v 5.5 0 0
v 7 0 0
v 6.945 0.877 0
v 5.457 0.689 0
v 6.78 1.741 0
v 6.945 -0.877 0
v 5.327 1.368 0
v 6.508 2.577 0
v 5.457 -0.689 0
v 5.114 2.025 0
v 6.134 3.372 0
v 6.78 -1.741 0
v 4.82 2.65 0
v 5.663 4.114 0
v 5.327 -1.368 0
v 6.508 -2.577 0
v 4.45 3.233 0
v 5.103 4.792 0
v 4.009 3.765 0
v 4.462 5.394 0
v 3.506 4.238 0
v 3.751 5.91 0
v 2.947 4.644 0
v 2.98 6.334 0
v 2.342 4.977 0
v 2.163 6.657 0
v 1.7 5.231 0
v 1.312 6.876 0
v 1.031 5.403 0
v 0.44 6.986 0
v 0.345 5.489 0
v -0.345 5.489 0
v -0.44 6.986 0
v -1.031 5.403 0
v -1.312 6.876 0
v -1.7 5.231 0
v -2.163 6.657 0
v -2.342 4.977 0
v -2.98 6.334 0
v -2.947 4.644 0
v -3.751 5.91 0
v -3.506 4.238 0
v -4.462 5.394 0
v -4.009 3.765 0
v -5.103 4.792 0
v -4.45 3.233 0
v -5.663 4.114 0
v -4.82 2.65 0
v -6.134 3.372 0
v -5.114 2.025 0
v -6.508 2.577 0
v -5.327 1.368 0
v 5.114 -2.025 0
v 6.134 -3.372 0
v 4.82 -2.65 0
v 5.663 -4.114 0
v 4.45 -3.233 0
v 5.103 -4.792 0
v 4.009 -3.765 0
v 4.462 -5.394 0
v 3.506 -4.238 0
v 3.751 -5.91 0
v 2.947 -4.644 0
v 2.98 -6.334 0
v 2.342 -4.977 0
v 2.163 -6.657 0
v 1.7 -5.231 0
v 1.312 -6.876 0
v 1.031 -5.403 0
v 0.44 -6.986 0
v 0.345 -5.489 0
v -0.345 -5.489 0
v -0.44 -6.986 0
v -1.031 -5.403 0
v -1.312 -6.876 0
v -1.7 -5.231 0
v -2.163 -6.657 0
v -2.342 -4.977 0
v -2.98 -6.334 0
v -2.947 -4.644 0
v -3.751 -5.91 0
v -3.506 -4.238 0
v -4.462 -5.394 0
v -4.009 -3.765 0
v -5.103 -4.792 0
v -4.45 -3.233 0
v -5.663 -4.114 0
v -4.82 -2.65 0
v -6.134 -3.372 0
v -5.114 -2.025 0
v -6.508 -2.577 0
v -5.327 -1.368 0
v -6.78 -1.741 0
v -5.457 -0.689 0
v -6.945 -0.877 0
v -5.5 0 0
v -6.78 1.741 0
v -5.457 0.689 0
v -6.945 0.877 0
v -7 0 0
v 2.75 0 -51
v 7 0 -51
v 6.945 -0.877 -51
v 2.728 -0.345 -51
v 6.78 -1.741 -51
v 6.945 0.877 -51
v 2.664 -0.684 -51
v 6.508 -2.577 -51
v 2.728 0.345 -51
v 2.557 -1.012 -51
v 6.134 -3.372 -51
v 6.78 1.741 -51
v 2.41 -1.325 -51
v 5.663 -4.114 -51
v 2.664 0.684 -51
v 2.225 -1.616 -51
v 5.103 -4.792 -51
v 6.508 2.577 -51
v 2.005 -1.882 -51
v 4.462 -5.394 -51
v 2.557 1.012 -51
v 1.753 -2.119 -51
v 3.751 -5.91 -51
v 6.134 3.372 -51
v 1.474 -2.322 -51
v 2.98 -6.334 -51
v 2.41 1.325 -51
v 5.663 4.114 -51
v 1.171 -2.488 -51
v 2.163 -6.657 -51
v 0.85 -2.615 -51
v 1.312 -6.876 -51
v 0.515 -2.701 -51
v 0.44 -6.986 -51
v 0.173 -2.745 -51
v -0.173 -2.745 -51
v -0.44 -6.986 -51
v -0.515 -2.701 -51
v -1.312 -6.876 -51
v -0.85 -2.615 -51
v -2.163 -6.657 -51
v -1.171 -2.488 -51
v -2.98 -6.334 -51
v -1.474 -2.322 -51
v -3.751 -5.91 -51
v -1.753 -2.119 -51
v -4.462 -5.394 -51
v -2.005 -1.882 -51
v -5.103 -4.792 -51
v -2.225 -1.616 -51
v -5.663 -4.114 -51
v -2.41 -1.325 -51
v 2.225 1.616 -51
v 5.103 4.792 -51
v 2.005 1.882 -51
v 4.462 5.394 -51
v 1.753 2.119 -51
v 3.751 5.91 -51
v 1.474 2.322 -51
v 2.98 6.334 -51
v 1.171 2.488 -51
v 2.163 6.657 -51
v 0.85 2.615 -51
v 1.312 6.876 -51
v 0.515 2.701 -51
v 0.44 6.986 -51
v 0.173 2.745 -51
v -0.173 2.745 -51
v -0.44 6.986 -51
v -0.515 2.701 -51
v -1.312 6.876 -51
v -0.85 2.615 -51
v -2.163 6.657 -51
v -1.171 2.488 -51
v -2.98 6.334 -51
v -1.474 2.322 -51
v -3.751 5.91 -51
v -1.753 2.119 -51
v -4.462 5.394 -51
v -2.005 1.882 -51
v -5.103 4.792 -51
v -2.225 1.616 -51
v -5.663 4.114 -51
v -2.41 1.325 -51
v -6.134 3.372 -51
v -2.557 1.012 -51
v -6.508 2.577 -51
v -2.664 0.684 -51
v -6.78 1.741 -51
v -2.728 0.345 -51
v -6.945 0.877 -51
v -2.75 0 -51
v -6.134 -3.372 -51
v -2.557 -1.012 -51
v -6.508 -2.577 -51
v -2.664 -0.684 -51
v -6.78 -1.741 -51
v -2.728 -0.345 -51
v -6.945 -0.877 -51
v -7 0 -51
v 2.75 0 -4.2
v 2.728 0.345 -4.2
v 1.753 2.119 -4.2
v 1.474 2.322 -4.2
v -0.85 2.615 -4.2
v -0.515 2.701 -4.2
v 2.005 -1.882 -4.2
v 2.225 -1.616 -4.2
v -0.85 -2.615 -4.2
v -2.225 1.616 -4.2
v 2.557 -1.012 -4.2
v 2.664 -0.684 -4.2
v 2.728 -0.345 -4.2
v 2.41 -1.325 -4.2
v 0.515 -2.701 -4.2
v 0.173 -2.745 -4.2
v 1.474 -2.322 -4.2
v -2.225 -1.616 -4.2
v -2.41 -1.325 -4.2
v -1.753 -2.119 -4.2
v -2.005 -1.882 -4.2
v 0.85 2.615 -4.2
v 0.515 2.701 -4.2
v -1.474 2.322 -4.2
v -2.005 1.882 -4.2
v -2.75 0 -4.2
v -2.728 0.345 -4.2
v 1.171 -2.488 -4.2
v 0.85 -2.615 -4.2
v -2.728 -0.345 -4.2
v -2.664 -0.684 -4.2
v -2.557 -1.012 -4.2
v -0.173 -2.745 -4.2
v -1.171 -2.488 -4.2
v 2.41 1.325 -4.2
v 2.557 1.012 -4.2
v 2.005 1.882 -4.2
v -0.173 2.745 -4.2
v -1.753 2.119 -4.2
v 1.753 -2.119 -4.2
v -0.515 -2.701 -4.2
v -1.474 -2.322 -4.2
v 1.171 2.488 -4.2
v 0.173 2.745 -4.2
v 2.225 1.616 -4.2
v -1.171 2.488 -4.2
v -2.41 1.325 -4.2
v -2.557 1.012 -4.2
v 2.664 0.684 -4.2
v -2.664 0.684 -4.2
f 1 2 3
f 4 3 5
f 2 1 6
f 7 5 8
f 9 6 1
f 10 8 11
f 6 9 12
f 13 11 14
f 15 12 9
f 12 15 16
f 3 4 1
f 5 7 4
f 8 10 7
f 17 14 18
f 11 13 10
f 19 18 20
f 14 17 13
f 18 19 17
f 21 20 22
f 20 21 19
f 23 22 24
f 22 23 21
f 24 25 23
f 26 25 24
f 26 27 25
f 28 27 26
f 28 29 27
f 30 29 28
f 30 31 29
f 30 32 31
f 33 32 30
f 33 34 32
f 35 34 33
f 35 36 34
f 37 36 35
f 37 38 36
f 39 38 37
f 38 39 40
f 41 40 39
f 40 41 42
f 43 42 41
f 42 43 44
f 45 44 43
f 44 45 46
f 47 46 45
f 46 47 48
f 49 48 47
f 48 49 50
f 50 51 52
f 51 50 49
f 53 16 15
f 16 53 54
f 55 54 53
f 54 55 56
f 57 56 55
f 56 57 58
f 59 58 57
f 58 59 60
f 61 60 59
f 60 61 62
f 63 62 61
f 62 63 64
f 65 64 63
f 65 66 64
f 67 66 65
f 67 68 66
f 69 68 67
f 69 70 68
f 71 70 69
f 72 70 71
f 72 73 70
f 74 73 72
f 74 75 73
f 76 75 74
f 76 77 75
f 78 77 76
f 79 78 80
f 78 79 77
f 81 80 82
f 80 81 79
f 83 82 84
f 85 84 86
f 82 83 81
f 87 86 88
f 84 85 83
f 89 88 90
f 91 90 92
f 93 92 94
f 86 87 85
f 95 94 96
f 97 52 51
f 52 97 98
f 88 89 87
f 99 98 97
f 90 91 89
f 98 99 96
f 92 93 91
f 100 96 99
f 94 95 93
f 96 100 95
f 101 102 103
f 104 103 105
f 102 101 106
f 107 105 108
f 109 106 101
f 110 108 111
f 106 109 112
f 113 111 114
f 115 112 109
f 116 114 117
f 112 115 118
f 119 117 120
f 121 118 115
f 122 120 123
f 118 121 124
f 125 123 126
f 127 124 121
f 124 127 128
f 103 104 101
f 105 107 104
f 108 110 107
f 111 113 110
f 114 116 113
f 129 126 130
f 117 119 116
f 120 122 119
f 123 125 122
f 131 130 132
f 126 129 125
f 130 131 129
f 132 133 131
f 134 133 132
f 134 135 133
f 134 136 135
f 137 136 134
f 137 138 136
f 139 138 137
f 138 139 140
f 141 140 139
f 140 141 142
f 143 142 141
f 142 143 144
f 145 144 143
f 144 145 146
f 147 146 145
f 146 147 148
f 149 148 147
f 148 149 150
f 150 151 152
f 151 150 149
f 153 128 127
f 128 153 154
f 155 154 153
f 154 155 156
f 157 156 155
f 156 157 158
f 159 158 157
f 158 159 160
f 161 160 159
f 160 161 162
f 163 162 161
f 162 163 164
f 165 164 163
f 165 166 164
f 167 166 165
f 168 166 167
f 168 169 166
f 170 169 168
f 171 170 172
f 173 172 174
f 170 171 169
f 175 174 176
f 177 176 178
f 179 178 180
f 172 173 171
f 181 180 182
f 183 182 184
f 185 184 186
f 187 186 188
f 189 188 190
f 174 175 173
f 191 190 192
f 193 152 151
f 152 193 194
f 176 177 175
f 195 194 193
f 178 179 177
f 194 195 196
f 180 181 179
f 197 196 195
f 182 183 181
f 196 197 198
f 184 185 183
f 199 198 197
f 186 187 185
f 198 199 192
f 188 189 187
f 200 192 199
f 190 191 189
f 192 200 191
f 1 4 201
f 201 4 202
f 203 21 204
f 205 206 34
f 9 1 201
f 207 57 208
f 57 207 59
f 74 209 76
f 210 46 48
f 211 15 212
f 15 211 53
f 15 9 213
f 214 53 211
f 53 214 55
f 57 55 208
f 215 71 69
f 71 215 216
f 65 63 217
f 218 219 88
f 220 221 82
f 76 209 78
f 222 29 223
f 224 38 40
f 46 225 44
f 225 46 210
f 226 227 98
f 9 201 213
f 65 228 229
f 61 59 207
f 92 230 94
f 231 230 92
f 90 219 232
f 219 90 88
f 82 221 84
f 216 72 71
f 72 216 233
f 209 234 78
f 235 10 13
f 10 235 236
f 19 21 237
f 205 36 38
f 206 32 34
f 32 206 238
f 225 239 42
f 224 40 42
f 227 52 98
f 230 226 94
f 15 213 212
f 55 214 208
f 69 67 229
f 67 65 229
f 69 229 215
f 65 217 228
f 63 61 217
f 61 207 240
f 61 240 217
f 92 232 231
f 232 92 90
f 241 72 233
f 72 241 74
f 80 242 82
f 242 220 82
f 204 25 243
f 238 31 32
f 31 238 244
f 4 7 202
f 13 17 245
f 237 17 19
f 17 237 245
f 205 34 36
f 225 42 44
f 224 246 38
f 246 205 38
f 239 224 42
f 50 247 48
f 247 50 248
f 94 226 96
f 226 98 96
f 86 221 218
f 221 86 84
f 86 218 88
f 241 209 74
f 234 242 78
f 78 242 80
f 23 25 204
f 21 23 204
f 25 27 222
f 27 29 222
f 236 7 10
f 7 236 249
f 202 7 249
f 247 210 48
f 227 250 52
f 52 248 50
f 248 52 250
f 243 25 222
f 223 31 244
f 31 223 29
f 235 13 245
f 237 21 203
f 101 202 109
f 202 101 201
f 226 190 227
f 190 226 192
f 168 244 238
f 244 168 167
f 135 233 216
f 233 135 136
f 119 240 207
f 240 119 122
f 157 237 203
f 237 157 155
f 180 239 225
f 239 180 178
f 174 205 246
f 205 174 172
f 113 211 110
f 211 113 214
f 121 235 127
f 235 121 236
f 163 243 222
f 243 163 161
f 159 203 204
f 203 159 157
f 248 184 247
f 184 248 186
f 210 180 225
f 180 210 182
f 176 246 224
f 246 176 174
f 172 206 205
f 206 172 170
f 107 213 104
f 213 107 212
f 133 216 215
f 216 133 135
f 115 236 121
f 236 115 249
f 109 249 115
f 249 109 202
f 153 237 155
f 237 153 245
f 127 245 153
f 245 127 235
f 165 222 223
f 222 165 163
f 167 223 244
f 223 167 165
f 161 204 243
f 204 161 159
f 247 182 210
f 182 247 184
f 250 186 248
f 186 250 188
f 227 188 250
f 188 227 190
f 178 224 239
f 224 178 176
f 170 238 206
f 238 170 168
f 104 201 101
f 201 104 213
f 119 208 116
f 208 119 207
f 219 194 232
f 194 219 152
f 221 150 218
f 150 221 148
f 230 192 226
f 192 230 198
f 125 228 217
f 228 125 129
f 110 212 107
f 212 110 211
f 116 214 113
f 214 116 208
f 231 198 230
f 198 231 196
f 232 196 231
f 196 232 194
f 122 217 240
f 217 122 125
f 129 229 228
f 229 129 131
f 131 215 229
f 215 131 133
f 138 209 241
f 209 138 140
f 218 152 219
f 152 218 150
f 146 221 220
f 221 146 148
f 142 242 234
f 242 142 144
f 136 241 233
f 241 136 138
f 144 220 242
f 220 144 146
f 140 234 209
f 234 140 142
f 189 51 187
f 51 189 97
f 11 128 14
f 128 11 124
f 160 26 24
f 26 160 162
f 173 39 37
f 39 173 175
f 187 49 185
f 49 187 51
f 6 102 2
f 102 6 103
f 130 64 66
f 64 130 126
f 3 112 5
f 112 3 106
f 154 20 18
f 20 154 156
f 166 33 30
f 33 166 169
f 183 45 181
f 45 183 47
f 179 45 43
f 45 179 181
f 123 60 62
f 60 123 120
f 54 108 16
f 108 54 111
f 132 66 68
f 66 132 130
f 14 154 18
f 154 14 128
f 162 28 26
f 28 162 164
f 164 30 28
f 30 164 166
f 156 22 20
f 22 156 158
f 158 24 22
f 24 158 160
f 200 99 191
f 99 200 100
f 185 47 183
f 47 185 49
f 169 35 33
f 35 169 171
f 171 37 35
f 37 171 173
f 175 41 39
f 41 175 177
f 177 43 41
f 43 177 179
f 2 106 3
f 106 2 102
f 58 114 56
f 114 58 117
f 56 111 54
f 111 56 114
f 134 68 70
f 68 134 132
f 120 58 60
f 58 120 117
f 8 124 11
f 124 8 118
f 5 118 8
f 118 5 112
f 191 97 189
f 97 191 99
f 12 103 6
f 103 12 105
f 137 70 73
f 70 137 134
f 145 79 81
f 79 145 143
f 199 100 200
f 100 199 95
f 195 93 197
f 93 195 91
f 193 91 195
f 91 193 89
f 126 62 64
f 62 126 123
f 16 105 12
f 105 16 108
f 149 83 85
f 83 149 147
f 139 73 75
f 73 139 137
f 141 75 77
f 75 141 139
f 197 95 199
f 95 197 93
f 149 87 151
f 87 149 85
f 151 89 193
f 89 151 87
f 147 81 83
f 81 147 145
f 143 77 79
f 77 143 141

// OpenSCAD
$fn = 50;


difference() {
	union() {
		translate(v = [0, 0, -51.0000000000]) {
			cylinder(h = 51, r = 7.0000000000);
		}
		cylinder(h = 0, r = 17.0000000000);
	}
	union() {
		translate(v = [0, 0, 0]) {
			rotate(a = [0, 0, 0]) {
				difference() {
					union() {
						#translate(v = [0, 0, -51.0000000000]) {
							cylinder(h = 51, r = 2.2500000000);
						}
						#translate(v = [0, 0, -4.2000000000]) {
							cylinder(h = 4.2000000000, r1 = 2.7500000000, r2 = 5.5000000000);
						}
						#translate(v = [0, 0, -51.0000000000]) {
							cylinder(h = 51, r = 2.7500000000);
						}
						#translate(v = [0, 0, -51.0000000000]) {
							cylinder(h = 51, r = 2.2500000000);
						}
					}
					union();
				}
			}
		}
	}
}
